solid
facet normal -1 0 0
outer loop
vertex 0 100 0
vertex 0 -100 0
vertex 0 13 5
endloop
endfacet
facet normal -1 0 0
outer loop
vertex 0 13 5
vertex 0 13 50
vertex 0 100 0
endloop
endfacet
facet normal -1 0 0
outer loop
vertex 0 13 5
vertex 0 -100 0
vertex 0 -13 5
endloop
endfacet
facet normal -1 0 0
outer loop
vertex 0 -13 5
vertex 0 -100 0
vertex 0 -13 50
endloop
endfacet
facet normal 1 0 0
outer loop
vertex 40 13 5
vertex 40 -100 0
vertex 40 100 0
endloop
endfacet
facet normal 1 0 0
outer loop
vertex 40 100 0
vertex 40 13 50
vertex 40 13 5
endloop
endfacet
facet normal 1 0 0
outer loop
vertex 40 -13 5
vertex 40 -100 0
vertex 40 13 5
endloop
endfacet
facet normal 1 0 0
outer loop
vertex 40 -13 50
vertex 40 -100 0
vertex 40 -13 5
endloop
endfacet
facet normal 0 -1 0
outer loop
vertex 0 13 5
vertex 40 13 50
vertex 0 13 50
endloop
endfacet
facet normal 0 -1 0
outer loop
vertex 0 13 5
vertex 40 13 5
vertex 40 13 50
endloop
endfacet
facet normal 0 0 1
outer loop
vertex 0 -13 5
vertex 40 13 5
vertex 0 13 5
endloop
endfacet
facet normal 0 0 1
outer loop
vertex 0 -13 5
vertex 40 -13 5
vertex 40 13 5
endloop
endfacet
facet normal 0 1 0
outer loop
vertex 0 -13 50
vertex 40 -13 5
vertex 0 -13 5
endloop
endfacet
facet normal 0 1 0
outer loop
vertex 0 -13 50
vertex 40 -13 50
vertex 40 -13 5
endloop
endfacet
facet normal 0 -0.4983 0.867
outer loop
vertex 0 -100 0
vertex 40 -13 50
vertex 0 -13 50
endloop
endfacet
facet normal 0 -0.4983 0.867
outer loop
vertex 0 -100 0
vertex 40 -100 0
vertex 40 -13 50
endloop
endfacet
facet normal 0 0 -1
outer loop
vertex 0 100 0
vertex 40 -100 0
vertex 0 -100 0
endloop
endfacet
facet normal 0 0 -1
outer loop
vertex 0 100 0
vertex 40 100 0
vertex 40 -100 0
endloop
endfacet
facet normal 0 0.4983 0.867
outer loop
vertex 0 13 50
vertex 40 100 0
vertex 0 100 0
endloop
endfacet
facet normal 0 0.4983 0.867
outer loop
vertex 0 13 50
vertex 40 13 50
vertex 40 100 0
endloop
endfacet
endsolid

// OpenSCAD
height = 50;
gap_width = 26;
gap_height = 5;
width = 200;
depth = 40;

rotate([ 90, 0, 90 ])
{
    linear_extrude(depth)
    {
        polygon(points = [
            [ 0, 0 ],
            [ width / 2, 0 ],
            [ gap_width / 2, height ],
            [ gap_width / 2, gap_height ],
            [ -gap_width / 2, gap_height ],
            [ -gap_width / 2, height ],
            [ -width / 2, 0 ],
        ]);
    }
}
